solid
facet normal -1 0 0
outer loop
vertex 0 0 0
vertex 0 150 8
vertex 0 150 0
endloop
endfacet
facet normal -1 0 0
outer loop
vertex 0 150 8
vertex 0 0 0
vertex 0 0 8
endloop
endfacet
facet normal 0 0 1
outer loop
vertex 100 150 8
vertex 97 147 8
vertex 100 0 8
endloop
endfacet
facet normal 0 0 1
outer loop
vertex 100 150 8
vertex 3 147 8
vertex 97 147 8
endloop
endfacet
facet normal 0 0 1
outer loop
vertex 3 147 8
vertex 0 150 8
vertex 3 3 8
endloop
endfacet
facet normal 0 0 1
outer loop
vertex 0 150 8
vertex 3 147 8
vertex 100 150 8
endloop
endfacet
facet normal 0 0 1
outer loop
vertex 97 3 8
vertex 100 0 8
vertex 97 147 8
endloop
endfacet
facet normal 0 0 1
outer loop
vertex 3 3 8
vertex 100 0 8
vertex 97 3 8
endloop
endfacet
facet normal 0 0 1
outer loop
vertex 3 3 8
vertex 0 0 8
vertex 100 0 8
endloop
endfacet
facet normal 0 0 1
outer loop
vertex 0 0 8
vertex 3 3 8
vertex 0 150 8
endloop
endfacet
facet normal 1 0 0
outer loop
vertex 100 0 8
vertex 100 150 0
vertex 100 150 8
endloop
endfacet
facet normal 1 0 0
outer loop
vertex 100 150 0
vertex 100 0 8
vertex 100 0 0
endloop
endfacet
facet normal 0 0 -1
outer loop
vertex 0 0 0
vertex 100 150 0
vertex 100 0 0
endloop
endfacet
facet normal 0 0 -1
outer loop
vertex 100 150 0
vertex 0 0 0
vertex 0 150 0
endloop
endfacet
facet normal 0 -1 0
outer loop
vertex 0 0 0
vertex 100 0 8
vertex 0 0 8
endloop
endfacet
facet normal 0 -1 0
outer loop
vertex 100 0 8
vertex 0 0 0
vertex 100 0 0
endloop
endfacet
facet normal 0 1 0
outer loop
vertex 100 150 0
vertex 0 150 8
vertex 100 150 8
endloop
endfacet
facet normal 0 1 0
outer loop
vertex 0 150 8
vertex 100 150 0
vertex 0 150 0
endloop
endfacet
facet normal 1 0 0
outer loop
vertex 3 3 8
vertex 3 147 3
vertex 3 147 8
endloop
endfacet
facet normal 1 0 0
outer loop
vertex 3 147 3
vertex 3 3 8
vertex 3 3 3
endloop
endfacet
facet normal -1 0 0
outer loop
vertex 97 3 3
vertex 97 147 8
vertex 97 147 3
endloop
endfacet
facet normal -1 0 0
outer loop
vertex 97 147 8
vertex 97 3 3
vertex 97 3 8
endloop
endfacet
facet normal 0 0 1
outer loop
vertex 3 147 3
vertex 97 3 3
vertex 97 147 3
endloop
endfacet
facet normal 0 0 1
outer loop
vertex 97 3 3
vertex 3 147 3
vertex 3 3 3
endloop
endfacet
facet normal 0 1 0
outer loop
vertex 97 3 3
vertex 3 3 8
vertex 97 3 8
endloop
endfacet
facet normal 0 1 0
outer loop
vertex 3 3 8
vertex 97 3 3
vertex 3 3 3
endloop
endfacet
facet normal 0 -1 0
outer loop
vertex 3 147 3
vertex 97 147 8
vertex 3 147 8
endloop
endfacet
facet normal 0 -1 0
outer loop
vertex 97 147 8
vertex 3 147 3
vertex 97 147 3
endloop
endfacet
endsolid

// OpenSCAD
difference() {
    cube([100, 150, 8]);
    translate([3, 3, 3])
        cube([94, 144, 8]);
}
